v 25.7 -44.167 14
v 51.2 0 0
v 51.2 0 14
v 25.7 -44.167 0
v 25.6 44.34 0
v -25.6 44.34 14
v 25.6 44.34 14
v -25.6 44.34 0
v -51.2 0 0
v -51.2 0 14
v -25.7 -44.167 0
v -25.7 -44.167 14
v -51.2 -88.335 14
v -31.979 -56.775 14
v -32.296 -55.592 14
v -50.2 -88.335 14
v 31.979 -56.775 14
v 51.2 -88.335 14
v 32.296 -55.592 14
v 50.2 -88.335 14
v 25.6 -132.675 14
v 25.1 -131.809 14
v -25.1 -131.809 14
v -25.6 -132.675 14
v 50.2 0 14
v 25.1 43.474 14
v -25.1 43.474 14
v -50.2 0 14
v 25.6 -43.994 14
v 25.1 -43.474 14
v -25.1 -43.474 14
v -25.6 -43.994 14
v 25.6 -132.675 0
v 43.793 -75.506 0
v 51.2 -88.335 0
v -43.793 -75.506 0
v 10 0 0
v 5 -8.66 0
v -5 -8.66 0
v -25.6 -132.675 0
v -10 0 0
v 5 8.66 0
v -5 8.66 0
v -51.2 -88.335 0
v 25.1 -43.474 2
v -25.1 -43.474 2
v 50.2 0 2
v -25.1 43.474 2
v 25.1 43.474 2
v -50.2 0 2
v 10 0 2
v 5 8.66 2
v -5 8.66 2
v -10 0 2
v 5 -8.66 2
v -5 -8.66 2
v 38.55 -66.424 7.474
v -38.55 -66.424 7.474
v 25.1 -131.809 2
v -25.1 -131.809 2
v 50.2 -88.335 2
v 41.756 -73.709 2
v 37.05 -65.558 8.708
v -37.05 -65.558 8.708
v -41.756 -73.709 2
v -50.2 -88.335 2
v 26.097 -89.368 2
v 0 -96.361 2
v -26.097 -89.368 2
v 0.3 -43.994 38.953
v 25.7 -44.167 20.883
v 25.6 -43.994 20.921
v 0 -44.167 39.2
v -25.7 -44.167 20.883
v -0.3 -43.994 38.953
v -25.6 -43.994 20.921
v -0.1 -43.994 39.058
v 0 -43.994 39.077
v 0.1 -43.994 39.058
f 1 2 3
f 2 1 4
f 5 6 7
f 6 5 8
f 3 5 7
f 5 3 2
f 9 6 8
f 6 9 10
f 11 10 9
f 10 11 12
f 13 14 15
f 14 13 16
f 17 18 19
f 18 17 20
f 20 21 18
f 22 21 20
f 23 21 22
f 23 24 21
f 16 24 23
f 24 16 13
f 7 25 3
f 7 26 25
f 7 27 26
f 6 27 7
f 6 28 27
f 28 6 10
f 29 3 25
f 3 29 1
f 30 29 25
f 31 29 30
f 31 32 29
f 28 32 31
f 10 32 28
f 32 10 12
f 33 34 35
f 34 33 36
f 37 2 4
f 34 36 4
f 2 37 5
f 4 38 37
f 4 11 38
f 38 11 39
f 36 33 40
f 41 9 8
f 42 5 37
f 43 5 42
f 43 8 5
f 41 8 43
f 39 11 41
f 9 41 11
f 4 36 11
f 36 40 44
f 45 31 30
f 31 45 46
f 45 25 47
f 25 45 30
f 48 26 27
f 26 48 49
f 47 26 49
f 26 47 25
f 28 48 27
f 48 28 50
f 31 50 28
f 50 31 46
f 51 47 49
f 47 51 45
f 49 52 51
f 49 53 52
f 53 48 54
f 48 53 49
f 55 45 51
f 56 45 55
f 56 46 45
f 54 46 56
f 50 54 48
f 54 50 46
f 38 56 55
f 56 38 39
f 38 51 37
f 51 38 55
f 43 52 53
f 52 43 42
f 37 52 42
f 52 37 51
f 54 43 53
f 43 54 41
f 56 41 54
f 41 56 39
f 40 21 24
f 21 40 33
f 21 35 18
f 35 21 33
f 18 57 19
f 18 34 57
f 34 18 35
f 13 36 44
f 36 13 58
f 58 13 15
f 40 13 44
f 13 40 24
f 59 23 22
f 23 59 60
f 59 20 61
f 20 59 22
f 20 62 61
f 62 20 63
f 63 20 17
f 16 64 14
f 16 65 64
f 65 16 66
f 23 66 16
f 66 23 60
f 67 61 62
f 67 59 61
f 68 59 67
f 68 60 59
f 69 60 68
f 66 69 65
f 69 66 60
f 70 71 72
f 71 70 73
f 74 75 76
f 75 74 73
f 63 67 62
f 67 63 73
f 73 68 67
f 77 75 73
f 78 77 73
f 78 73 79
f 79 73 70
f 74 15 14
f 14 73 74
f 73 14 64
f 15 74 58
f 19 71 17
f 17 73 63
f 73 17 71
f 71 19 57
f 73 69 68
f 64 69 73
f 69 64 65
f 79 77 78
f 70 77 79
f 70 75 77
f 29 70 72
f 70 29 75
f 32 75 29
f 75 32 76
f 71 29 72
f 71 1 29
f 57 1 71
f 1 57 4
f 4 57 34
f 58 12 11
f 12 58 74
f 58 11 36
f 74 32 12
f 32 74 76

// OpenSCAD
// dicebowl.scad

// unit is mm

lew = 0.2 * 2; // leeway
dia = 100; // hex diameter
thi = 2; // thickness
//hei = 14 + 7 / 2; // dice height
hei = 14;

bigr = (dia + thi) / 2;
smar = bigr * cos(30);


module hex(hole=false) {

  difference() {

    cylinder(d=dia + lew + thi, h=hei, $fn=6);

    //cylinder(d1=140, d2=154, h=hei, $fn=6);
    translate([ 0, 0, thi ])
      cylinder(d=dia + lew, h=hei, $fn=6);

    if (hole)
      translate([ 0, 0, -0.5 ])
        cylinder(d=20, h=3, $fn=6);
  }
}

// four hexes
//translate([ 0, 0, 0 ]) hex(true);
//translate([ 0, -smar * 2, 0 ]) hex();
//translate([ smar * 1.72,  -smar, 0 ]) hex();
//translate([ smar * -1.72,  -smar, 0 ]) hex();

// two hexes and a slope
//translate([ -1 * dia, 0, 0 ]) union() {
  translate([ 0, 0, 0 ]) hex(true);
  translate([ 0, -smar * 2, 0 ]) hex();
//}

translate([ 0, -smar, 0 ]) intersection() {

  h = hei * 2.8;

  cylinder(d1=dia * 1.1, d2=0, h=h, $fn=12);

  translate([ 0, -smar, 0 ]) cylinder(d=dia + lew + thi, h=h, $fn=6);
}
